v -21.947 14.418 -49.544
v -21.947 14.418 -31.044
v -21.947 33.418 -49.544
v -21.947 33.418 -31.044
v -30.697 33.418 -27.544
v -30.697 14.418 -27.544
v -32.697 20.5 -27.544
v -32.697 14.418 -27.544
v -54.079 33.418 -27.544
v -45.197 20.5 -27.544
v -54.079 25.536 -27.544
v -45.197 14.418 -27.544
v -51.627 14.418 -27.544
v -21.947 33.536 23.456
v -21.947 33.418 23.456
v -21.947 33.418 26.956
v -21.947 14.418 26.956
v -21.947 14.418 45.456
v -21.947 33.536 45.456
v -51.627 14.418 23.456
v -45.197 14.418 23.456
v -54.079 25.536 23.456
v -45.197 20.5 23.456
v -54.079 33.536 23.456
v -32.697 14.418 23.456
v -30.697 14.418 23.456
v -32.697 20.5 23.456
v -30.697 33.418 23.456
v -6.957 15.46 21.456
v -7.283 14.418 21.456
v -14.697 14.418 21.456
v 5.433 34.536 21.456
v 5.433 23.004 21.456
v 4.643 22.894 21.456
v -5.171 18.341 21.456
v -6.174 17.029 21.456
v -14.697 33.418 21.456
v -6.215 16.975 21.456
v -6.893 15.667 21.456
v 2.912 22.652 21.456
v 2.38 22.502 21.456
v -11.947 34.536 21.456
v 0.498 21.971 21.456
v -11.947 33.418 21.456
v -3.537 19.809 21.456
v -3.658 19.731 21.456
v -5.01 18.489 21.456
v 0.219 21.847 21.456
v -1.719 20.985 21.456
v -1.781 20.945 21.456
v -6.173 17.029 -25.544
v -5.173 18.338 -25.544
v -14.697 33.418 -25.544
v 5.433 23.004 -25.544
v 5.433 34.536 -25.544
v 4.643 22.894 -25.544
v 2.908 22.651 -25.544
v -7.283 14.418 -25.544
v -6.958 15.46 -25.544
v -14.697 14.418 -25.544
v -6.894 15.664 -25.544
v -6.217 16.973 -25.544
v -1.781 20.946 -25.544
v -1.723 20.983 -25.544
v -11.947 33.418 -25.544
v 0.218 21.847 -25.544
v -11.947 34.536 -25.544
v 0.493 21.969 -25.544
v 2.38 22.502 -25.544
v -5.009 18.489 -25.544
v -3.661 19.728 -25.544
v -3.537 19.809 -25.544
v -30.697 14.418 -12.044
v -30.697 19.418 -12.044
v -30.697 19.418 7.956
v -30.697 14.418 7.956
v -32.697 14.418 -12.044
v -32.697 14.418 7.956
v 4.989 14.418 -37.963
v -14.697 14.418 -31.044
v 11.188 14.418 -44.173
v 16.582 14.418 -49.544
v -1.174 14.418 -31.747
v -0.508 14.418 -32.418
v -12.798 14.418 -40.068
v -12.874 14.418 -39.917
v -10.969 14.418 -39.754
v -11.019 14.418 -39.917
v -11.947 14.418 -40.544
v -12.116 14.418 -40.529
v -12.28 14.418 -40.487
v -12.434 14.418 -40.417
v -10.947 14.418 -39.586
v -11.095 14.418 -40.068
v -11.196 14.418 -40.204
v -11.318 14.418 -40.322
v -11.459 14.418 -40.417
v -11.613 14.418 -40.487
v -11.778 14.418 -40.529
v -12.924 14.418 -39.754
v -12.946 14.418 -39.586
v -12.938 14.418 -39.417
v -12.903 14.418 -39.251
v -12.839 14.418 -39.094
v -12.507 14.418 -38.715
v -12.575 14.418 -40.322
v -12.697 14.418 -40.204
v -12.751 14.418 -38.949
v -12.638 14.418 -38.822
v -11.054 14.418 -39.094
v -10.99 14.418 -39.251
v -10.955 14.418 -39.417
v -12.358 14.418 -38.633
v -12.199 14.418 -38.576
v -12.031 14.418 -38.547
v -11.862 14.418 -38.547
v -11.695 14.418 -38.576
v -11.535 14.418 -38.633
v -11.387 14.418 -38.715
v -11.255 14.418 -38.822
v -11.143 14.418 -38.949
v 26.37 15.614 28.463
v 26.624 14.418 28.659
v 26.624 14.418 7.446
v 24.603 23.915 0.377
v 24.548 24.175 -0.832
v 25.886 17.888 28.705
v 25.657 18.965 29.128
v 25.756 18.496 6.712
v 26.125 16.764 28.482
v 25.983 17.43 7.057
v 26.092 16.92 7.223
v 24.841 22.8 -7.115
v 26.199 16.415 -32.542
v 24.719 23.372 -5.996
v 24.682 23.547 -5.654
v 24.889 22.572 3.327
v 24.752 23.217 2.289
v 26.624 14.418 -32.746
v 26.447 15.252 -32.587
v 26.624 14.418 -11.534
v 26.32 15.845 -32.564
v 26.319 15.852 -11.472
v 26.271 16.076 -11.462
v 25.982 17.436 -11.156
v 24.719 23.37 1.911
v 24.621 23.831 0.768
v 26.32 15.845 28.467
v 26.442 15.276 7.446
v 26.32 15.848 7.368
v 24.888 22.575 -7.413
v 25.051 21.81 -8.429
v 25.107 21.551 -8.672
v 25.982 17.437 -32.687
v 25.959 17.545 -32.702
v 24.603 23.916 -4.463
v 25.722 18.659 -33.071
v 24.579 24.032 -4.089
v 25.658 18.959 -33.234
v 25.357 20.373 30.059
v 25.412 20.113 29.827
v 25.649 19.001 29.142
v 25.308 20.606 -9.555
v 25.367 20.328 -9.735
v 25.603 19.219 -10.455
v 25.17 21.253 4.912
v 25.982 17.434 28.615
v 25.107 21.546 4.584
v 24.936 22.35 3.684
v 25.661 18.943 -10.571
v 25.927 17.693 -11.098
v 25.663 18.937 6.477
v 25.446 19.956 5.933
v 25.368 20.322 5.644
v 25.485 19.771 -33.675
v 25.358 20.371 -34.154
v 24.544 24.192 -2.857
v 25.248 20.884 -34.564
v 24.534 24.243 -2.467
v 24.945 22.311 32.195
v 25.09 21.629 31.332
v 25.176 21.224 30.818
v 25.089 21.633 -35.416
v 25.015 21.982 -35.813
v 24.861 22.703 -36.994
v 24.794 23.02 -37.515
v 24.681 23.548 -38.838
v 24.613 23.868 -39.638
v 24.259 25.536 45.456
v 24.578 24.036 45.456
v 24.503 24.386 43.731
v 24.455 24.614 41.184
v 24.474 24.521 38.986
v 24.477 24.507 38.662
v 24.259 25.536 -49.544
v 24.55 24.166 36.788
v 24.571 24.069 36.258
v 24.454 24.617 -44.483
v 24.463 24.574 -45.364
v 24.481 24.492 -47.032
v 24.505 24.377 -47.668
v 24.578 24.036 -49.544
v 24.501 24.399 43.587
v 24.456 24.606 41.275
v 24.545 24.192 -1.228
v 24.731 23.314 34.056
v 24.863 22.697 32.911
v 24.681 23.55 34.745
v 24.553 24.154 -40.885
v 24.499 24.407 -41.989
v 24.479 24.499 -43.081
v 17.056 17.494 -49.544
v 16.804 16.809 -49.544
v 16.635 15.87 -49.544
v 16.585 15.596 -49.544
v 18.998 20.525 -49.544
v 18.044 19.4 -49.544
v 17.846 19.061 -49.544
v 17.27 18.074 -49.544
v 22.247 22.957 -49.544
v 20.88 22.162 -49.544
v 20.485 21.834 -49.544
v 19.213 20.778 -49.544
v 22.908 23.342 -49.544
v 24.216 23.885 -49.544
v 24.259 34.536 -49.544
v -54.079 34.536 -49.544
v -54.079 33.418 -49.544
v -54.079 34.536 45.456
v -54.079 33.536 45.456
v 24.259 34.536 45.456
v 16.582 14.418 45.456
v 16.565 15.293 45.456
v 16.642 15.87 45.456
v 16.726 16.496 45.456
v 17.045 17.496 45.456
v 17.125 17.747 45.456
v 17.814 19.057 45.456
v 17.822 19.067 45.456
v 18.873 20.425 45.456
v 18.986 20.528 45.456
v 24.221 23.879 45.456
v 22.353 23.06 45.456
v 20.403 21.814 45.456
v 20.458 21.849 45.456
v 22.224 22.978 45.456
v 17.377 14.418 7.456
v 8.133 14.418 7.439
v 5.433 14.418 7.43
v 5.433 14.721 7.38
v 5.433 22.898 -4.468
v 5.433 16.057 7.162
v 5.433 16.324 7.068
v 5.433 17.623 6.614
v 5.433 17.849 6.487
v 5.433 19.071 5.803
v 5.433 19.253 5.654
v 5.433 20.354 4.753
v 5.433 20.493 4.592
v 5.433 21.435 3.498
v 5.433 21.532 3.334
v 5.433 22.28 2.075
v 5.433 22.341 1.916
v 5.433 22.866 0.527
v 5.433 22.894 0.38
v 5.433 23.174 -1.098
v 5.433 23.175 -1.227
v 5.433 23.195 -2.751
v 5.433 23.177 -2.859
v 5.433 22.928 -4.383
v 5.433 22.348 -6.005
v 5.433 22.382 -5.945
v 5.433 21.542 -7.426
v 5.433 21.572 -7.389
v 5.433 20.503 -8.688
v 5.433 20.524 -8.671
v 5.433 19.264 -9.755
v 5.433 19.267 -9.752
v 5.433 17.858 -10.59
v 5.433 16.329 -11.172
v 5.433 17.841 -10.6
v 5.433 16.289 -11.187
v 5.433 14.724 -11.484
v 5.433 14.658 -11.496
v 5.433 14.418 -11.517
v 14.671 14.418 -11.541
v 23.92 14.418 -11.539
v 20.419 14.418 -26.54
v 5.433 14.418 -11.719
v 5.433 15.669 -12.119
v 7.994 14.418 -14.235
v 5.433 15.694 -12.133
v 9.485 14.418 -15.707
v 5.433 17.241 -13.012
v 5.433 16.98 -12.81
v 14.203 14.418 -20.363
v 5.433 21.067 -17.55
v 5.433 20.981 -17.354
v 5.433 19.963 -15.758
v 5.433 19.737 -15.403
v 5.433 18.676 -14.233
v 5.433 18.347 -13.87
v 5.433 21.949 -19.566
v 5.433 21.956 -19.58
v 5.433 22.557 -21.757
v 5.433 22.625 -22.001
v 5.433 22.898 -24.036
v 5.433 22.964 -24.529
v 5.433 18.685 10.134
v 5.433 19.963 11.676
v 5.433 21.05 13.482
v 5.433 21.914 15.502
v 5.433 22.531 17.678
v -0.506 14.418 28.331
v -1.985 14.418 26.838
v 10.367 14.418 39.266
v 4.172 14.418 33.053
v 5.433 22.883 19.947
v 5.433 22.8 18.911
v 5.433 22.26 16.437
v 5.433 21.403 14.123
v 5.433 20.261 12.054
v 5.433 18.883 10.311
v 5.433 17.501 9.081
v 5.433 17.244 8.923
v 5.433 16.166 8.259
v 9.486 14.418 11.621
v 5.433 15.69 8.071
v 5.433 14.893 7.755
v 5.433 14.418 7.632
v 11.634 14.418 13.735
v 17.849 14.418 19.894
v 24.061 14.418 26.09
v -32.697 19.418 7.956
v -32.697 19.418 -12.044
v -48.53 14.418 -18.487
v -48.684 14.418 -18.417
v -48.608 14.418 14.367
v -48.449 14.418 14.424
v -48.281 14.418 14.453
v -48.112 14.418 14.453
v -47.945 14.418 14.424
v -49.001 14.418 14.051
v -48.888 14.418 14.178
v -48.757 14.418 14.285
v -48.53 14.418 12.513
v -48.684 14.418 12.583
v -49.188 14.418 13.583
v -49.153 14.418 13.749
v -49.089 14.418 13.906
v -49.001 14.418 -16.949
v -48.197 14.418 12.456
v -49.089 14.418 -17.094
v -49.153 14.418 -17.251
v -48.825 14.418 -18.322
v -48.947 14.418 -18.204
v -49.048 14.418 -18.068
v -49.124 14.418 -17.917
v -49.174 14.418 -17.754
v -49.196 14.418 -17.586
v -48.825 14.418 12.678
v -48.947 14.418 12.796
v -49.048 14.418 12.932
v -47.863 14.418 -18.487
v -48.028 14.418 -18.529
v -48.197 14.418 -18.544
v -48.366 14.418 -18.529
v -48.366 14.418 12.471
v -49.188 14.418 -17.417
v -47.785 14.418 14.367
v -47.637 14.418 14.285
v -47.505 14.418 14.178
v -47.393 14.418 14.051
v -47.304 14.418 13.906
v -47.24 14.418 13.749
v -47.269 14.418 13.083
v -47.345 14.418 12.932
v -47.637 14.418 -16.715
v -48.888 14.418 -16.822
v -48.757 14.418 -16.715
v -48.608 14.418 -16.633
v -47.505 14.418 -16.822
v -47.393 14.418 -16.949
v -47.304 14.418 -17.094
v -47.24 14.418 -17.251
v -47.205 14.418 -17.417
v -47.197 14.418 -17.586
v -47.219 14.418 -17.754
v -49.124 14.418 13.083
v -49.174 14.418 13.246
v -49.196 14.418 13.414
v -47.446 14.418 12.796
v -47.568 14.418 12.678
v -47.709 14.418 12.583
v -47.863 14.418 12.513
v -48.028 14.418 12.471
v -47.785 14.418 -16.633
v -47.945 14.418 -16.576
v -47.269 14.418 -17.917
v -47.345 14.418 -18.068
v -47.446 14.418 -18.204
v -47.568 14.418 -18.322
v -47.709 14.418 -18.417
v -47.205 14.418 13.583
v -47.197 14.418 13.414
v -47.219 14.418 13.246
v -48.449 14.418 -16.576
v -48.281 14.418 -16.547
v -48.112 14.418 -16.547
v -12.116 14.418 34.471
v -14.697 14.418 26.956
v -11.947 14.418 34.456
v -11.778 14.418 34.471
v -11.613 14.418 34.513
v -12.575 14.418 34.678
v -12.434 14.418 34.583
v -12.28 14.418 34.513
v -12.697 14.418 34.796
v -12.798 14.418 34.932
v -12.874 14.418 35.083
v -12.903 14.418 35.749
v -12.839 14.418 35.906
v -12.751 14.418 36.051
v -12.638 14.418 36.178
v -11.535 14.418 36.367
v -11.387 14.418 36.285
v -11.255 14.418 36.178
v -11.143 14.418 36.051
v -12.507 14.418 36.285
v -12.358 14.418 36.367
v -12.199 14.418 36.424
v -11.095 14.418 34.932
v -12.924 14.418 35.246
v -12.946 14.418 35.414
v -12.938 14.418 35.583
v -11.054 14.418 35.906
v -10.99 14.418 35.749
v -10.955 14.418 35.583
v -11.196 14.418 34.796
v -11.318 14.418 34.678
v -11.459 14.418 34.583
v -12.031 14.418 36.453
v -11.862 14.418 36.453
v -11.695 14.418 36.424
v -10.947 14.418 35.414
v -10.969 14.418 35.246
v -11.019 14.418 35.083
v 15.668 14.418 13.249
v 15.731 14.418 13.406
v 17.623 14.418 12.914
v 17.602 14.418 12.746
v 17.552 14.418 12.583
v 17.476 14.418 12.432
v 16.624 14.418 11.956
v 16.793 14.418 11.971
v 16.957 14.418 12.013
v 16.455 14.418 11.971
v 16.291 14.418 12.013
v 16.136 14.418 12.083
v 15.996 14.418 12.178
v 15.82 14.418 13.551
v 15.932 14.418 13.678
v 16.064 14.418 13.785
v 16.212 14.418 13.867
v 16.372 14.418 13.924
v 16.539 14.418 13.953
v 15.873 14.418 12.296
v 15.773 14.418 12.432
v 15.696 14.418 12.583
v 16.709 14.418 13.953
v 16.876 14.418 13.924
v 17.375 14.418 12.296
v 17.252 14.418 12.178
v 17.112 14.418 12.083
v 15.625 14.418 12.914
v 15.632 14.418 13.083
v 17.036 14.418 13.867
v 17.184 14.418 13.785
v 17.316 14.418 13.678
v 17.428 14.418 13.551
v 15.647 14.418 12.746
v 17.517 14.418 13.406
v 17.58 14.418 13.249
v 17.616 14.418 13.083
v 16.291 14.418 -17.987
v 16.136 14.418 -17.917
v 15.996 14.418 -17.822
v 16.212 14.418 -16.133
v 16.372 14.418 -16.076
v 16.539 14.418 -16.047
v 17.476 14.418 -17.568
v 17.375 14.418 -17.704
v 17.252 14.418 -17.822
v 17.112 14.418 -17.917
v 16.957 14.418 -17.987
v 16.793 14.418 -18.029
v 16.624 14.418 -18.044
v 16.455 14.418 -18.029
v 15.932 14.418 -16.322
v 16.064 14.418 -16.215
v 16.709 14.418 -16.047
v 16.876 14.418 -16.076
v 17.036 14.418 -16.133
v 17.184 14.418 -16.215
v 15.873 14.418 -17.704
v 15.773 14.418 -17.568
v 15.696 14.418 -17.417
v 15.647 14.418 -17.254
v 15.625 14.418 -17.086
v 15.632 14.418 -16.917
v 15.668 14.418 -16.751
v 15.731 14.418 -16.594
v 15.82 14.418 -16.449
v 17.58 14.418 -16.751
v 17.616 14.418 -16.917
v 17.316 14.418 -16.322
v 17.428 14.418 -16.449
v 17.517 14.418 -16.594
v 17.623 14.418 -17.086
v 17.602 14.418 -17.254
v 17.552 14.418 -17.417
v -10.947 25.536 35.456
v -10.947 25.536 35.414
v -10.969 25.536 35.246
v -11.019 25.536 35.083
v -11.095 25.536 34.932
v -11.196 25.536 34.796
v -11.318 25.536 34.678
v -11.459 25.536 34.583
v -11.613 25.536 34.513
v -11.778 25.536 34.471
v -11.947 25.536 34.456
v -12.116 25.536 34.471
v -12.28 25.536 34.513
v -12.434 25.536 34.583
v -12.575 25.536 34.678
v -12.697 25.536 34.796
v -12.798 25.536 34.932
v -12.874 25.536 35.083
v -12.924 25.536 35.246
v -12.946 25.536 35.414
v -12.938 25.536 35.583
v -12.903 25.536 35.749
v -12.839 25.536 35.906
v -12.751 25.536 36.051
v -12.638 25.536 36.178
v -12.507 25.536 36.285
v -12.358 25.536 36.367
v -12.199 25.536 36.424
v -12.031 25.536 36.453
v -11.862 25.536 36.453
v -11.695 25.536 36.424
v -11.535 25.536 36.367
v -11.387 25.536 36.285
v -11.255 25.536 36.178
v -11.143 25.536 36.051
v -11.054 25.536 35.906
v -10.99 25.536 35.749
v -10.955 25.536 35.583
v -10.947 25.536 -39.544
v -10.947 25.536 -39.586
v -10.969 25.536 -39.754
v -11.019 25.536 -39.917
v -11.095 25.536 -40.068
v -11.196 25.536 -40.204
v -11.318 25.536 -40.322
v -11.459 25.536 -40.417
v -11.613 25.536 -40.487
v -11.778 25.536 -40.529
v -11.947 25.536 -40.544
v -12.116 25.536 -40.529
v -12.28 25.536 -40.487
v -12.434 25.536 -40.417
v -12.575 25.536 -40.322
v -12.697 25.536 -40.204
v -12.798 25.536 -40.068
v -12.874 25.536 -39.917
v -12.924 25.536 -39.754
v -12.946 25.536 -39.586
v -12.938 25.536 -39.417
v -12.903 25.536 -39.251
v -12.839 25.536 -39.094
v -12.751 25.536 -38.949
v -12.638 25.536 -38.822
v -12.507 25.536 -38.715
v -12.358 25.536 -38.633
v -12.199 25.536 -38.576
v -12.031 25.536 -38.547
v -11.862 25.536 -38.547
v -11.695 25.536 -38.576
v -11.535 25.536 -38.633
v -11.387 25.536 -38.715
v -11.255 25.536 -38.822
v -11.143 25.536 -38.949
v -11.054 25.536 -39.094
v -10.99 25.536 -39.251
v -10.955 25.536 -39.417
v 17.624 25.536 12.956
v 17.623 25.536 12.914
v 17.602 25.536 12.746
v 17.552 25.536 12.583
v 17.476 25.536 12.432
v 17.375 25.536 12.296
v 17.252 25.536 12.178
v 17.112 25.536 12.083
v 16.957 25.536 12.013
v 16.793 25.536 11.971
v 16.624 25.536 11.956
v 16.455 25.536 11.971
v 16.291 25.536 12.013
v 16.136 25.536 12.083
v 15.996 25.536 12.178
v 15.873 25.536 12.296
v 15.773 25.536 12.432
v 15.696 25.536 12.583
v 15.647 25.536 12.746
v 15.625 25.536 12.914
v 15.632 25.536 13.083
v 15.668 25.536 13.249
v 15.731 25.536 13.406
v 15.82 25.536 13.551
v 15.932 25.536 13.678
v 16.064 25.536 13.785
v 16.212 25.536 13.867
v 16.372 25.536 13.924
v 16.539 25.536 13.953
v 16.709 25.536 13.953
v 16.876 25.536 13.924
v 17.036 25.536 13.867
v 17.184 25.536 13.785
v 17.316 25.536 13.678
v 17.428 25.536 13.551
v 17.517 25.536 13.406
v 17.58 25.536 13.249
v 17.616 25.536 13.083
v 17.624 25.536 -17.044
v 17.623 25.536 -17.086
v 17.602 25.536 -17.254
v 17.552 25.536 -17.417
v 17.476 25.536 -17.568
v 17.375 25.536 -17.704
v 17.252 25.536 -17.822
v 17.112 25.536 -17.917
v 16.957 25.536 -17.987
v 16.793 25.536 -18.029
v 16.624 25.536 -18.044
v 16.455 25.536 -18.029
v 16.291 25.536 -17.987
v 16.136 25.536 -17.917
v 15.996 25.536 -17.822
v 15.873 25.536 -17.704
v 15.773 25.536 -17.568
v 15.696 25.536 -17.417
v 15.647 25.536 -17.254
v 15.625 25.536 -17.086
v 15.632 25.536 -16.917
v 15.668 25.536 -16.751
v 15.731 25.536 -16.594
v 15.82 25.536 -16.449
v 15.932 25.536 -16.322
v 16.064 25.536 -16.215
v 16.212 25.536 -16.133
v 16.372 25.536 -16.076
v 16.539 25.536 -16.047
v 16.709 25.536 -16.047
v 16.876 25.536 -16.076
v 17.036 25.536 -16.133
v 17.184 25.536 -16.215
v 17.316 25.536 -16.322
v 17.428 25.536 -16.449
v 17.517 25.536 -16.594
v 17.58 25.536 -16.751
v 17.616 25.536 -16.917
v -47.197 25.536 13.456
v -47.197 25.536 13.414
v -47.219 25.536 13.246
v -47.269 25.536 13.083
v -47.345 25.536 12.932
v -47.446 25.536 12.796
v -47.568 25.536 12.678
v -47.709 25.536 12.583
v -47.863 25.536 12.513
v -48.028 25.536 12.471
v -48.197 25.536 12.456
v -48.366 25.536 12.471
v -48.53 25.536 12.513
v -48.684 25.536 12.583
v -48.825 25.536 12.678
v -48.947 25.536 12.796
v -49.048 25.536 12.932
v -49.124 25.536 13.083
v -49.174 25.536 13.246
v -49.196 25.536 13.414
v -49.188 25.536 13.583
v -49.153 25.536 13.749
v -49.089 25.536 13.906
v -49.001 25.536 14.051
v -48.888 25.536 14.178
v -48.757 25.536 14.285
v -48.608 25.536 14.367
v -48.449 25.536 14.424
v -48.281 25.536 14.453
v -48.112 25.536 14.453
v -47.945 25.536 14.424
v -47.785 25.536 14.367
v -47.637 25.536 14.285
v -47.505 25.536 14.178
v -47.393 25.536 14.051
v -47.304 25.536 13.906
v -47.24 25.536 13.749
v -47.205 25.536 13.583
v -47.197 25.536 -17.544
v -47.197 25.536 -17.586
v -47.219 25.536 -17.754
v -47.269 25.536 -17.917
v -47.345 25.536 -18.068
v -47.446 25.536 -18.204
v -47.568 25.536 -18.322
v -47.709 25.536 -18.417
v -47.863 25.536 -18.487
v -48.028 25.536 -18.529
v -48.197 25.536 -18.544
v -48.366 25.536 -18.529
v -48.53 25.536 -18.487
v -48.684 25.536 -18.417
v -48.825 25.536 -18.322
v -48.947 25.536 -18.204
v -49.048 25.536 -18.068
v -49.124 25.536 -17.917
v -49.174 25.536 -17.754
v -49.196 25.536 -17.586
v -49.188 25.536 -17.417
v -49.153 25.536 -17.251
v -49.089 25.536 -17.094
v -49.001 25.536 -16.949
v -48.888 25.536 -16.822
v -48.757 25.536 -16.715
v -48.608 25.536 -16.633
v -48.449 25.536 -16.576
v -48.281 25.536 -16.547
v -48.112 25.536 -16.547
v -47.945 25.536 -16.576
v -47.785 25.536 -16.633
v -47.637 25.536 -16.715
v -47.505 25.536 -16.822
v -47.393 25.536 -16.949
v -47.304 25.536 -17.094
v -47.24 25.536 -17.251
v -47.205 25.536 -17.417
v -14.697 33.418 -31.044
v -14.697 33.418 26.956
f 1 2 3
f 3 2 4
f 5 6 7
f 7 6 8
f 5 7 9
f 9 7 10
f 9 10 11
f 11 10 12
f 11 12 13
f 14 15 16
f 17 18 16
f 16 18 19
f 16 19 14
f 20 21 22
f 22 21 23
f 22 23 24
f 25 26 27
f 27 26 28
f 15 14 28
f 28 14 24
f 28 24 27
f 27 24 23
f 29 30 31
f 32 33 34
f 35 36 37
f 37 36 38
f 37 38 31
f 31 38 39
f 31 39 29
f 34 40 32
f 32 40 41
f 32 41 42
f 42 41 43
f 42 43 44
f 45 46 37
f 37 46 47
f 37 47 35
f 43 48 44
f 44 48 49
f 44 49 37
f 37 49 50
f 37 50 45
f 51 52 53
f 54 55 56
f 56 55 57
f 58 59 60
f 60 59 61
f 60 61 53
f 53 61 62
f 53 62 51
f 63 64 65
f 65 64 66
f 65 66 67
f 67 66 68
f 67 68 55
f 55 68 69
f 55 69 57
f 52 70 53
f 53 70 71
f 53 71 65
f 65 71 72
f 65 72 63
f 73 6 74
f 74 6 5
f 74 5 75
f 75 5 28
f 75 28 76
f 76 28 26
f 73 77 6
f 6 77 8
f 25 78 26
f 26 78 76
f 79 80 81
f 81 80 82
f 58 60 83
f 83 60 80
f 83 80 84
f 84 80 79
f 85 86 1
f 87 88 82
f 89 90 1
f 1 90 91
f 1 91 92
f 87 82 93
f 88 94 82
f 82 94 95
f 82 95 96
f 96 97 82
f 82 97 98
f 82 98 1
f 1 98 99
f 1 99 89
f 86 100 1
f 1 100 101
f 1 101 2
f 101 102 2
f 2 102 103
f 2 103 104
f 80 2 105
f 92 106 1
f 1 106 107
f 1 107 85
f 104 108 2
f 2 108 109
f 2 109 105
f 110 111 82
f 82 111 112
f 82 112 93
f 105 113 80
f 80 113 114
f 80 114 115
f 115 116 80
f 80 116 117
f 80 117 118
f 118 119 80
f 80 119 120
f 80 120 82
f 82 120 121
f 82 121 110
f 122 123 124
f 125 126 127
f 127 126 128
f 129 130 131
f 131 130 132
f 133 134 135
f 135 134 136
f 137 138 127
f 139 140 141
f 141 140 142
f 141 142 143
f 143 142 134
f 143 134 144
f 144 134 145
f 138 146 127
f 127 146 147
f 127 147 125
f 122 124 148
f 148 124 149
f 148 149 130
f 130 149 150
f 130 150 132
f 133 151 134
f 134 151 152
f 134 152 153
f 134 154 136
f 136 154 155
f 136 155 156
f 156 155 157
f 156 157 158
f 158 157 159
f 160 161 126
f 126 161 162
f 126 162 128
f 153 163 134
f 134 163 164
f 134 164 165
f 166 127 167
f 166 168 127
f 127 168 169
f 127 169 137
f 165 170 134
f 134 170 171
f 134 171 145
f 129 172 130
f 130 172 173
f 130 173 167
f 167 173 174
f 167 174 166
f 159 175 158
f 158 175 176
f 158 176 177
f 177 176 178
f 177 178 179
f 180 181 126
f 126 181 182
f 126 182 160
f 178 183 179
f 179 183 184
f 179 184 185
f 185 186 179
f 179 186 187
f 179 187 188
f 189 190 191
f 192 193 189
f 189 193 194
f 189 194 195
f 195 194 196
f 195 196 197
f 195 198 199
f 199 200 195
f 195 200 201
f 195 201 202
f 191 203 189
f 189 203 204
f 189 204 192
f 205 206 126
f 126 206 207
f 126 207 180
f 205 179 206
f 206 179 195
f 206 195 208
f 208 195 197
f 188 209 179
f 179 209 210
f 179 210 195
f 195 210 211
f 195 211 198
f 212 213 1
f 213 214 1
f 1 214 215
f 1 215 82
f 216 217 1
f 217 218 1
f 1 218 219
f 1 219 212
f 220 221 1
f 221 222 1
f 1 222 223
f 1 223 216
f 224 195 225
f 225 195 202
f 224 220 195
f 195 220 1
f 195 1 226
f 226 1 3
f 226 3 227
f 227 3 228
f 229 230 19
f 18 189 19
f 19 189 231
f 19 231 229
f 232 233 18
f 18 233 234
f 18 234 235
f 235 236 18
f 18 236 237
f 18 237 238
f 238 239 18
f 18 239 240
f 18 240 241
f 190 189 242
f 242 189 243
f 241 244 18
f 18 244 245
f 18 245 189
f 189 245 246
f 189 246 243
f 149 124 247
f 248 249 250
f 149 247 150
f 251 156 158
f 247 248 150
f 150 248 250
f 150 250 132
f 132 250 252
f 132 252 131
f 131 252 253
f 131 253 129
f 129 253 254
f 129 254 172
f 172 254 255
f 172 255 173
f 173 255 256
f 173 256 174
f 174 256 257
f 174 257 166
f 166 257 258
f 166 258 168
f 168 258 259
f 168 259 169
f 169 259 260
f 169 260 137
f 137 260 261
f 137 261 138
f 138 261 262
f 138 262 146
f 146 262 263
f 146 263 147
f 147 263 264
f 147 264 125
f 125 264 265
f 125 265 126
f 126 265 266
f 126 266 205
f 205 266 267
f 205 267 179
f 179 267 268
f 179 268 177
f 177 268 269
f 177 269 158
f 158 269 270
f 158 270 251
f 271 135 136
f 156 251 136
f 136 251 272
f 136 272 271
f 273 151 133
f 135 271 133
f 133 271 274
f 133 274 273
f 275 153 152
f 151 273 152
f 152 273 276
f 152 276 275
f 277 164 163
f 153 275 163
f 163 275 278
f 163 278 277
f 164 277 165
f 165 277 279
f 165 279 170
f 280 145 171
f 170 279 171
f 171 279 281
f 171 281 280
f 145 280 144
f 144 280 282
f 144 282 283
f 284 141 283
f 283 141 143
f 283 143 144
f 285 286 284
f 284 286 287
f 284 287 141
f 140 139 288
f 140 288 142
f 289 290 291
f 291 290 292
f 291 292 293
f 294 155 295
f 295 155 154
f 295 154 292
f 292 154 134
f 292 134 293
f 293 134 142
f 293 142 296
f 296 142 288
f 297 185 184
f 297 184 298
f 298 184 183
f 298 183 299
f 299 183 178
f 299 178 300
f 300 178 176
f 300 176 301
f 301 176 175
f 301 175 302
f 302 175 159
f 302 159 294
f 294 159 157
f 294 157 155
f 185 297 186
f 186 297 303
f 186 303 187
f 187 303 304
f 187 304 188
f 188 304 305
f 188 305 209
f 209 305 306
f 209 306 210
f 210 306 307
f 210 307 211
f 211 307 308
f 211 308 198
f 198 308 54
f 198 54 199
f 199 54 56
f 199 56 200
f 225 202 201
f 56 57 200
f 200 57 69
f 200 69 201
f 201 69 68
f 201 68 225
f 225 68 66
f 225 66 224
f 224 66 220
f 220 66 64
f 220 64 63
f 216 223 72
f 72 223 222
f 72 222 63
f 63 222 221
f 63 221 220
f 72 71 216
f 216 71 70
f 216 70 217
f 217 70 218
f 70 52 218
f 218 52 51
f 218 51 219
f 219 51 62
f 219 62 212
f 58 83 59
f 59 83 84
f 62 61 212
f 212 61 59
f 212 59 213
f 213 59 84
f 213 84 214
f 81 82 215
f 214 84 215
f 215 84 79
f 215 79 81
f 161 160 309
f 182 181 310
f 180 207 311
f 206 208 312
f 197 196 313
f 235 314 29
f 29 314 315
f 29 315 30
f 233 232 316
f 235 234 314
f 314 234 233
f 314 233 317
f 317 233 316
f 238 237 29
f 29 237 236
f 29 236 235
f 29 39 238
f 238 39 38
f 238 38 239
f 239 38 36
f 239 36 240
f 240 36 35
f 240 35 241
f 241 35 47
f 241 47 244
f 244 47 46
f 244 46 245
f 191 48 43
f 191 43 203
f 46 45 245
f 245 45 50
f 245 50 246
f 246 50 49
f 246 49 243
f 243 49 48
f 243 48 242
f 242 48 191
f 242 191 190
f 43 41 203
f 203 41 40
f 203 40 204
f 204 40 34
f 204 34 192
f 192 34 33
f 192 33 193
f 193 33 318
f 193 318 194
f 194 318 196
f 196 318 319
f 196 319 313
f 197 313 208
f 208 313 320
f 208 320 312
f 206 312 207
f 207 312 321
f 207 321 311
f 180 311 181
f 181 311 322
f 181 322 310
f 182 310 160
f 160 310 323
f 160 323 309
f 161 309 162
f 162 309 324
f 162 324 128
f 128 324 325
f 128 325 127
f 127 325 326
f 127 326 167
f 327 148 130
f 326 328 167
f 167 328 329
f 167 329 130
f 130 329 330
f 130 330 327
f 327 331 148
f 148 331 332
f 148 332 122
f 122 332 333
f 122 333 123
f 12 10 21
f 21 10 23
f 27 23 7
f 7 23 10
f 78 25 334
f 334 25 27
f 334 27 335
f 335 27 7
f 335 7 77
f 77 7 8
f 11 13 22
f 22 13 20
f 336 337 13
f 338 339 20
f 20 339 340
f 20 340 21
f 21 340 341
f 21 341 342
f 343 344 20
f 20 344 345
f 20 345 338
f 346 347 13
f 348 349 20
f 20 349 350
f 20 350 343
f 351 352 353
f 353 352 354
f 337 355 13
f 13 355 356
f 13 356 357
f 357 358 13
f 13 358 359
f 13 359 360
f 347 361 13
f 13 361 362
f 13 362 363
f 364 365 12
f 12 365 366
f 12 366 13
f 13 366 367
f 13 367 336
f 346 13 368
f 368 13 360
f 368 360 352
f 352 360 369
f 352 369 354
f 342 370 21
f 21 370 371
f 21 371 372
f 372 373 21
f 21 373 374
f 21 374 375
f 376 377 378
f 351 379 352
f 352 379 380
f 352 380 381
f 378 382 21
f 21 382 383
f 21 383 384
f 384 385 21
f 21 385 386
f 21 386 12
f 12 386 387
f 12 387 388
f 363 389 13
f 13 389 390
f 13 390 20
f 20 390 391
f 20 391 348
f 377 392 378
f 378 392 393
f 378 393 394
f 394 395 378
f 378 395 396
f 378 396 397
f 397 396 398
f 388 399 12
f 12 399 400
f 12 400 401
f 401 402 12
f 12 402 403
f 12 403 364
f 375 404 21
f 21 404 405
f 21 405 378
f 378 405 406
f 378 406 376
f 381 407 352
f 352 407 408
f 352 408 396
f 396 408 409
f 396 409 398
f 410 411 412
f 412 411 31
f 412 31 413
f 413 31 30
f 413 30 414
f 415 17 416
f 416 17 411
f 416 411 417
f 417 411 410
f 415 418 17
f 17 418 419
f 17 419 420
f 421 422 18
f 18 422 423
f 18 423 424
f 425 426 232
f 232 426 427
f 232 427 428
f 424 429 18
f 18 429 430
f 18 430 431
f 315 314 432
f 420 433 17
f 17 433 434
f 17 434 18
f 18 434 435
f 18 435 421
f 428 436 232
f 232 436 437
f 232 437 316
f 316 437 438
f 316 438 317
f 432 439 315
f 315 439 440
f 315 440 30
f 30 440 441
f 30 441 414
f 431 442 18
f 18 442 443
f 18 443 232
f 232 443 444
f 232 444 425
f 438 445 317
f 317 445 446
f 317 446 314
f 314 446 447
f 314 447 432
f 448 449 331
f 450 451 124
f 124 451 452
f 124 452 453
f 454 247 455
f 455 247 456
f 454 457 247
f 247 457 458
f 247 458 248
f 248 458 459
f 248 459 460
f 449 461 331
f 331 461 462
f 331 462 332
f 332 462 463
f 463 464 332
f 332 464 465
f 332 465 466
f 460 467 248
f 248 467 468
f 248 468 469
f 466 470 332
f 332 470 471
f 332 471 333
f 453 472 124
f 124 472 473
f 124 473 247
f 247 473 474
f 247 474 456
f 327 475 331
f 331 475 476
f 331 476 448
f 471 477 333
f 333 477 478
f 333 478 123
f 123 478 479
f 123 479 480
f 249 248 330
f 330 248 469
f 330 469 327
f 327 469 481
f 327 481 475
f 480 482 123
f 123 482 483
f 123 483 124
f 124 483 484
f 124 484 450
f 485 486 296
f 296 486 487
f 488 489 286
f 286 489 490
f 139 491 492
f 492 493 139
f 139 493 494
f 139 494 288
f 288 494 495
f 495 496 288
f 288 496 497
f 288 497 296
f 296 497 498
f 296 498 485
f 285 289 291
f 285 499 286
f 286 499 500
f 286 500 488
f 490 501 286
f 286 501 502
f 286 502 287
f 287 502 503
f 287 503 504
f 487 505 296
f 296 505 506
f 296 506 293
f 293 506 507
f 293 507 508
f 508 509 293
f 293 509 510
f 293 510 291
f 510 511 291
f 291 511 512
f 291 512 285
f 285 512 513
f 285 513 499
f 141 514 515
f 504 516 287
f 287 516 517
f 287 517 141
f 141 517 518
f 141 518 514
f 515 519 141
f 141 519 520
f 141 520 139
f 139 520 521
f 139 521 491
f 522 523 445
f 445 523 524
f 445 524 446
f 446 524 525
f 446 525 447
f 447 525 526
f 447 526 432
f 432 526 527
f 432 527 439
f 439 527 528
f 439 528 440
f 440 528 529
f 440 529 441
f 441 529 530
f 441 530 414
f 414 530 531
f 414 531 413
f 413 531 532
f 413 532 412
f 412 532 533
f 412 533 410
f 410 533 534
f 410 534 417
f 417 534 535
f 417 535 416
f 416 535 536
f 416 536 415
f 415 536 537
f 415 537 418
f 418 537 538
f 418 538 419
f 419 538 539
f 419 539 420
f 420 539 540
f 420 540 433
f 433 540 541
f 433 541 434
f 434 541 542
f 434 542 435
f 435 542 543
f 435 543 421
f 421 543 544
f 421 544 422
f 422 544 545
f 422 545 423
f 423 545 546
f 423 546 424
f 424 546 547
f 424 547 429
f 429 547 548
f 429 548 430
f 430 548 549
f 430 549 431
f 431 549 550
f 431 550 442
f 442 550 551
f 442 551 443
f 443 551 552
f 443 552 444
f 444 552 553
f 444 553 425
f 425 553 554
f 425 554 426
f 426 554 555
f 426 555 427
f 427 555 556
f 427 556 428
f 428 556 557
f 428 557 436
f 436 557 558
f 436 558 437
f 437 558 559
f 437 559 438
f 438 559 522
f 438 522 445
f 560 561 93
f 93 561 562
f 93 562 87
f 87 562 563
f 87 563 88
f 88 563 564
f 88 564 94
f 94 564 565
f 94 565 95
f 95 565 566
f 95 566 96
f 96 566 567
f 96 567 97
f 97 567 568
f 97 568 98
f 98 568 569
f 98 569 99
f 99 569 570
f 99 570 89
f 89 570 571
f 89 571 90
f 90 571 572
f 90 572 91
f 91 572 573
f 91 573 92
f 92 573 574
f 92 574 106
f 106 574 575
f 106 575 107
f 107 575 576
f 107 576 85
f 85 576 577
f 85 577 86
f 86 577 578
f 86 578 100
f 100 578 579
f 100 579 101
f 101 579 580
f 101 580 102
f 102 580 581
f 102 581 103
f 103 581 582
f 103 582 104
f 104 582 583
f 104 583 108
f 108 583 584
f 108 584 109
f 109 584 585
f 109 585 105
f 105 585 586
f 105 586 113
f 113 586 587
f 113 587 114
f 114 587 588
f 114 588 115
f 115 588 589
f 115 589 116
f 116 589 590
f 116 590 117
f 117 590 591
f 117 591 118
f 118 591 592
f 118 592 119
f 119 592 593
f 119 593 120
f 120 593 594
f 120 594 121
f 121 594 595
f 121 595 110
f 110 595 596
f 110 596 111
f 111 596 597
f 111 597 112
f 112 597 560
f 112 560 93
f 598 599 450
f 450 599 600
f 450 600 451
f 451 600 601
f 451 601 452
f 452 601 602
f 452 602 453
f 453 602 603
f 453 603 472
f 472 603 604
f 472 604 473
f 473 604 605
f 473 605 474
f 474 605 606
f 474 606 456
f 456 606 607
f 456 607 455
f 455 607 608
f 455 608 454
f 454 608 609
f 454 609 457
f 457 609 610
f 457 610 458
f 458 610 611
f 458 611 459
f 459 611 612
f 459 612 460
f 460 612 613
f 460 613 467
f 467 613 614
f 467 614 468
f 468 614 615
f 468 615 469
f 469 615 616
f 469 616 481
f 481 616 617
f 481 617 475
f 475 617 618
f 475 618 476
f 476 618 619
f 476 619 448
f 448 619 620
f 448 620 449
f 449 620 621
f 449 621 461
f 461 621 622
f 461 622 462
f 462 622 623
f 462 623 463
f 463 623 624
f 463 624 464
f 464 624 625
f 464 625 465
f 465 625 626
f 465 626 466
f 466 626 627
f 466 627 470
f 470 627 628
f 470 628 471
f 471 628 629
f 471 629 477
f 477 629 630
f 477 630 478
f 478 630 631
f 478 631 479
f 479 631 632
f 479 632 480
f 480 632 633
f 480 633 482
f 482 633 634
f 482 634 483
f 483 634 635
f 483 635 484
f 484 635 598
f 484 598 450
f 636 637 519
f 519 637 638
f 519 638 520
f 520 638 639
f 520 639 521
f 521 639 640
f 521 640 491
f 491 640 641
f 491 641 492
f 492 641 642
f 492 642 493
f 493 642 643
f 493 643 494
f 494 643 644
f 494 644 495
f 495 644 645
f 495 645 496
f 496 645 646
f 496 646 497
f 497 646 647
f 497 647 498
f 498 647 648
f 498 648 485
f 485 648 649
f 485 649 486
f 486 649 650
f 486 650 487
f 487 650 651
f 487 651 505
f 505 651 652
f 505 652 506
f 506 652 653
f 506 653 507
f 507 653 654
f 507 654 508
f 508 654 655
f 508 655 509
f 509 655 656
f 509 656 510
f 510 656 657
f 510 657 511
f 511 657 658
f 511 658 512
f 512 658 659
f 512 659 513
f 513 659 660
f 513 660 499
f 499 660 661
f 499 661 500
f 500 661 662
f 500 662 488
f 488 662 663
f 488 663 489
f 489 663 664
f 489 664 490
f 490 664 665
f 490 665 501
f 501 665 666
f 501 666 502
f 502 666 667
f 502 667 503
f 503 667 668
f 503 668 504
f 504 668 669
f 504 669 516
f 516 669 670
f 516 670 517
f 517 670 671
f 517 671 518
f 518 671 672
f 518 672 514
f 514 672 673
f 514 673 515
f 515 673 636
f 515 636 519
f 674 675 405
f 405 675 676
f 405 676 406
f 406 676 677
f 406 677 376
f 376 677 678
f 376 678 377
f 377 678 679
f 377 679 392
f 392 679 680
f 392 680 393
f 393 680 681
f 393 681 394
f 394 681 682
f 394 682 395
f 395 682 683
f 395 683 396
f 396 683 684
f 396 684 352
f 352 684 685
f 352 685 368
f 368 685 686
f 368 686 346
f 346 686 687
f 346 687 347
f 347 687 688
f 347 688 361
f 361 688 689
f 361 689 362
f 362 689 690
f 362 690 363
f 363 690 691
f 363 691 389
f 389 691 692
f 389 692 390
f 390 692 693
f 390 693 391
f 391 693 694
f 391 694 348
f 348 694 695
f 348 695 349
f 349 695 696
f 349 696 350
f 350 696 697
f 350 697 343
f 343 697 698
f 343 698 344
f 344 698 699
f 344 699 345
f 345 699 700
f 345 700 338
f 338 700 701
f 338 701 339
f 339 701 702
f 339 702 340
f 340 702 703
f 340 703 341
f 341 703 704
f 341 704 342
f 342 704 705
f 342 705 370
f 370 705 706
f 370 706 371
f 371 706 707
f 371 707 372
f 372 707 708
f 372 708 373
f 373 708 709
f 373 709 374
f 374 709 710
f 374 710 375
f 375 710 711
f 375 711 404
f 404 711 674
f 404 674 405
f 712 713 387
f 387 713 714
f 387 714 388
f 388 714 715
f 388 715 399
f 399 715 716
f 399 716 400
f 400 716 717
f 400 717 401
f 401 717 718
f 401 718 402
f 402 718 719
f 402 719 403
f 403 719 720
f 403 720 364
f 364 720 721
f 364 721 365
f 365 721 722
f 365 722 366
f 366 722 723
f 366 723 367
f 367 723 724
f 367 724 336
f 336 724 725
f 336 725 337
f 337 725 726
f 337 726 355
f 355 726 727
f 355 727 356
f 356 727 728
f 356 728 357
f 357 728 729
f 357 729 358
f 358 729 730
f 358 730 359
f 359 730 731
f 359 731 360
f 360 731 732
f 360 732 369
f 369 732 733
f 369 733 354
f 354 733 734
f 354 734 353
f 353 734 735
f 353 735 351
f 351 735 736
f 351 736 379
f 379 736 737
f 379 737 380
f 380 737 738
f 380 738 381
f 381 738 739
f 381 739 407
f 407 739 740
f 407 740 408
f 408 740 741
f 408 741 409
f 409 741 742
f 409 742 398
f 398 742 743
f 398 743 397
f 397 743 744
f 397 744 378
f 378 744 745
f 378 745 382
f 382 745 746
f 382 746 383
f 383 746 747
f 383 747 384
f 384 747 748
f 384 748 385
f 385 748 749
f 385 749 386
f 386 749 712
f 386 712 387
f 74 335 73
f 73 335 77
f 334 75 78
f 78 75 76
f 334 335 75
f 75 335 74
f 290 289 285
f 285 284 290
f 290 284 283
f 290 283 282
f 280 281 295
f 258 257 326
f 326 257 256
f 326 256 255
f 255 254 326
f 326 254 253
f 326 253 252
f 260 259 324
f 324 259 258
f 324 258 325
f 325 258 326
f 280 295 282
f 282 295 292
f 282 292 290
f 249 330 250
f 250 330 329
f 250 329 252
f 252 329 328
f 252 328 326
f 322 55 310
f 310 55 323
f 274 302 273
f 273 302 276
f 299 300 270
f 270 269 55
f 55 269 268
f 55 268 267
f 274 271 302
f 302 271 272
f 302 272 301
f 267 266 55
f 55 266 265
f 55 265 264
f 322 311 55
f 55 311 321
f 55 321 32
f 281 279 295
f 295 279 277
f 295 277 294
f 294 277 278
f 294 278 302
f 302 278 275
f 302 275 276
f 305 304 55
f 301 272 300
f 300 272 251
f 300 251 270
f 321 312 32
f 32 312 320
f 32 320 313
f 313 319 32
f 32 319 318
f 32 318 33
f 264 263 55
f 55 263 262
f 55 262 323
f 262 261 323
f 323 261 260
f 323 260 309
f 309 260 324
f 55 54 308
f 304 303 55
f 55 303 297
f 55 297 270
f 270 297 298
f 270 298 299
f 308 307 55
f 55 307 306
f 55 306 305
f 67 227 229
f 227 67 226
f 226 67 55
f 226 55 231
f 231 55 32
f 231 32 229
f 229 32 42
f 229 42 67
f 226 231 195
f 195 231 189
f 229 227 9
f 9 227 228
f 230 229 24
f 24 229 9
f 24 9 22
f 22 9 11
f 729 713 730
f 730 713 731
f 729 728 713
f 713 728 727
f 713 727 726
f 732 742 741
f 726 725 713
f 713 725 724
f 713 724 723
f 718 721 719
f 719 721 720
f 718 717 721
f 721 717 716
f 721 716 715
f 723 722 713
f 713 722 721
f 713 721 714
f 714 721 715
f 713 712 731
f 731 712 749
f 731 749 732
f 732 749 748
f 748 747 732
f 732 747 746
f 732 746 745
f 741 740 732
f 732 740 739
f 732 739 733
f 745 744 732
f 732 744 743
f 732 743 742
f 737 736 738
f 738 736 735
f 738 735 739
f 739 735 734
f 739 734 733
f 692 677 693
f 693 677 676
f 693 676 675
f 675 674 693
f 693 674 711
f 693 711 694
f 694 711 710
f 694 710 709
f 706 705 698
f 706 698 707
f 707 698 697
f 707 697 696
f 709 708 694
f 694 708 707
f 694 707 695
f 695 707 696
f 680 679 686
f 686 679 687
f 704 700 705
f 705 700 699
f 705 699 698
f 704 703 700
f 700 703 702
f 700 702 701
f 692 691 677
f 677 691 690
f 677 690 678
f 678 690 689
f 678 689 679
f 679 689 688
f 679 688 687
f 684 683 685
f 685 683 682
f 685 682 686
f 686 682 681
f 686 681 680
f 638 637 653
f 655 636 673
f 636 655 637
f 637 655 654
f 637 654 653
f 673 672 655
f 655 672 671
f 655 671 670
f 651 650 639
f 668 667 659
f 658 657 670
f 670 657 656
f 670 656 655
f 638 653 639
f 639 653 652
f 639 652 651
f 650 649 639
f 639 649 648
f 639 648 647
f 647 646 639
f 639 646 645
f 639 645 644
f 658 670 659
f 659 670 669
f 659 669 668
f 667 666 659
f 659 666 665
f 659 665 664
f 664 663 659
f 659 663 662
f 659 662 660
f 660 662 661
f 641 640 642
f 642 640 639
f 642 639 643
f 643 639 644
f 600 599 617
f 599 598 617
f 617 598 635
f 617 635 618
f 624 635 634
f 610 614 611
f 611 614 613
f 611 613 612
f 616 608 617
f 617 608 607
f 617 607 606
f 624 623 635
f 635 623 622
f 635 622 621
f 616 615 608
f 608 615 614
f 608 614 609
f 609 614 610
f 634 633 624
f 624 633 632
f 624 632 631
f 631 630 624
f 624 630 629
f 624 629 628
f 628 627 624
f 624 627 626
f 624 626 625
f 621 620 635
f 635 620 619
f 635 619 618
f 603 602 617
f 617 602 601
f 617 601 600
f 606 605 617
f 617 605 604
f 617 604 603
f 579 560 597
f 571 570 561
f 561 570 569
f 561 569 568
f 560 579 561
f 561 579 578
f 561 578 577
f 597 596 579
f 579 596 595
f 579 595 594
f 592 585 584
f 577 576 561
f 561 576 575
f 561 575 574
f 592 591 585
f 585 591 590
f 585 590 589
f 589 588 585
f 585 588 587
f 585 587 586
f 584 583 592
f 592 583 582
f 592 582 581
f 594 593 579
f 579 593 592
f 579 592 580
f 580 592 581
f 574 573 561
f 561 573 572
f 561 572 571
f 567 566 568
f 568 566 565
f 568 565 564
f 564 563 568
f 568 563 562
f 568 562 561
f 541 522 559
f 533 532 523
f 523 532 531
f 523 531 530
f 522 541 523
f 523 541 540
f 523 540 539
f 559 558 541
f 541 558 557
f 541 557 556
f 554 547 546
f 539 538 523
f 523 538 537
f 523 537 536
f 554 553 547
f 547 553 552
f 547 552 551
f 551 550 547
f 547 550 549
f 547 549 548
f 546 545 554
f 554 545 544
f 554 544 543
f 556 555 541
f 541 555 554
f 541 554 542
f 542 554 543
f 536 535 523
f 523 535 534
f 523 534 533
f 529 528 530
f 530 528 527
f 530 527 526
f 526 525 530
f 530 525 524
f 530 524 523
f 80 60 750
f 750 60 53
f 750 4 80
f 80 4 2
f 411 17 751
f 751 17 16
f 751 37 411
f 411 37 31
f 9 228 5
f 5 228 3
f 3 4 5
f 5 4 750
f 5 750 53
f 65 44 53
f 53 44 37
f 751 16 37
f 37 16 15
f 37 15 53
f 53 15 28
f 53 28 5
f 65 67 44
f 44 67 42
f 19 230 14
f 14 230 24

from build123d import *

# Parameters (mm, degrees)
SKETCH1_W           = 95
SKETCH1_H           = 95
BOSS_EXTRUDE1_DEPTH = 50
CUT_EXTRUDE1_DEPTH  = 100
SKETCH3_R           = 9.5
CUT_EXTRUDE2_DEPTH  = 45
CUT_EXTRUDE4_DEPTH  = 45
CUT_EXTRUDE5_DEPTH  = 45
CUT_EXTRUDE6_DEPTH  = 45
CUT_EXTRUDE7_DEPTH  = 45
SKETCH9_R           = 9.5
CUT_EXTRUDE9_DEPTH  = 45
SKETCH11_R          = 9.5
CUT_EXTRUDE10_DEPTH = 45
SKETCH12_W          = 31.985759797
SKETCH12_H          = 95
BOSS_EXTRUDE2_DEPTH = 45
CUT_EXTRUDE11_DEPTH = 100
SKETCH14_R          = 9.5
CUT_EXTRUDE12_DEPTH = 100
SKETCH15_R          = 9.5
CUT_EXTRUDE13_DEPTH = 100
SKETCH16_R          = 9.5
CUT_EXTRUDE14_DEPTH = 100
FILLET2_R           = 4
SKETCH17_W          = 34
SKETCH17_H          = 34
CUT_EXTRUDE16_DEPTH = 22
SKETCH19_W          = 34
SKETCH19_H          = 34
CUT_EXTRUDE17_DEPTH = 22
SKETCH20_W          = 12.5
SKETCH20_H          = 16.5
CUT_EXTRUDE18_DEPTH = 60
CUT_EXTRUDE19_DEPTH = 60
SKETCH22_W          = 99.816433395
SKETCH22_H          = 26.367590903
CUT_EXTRUDE21_DEPTH = 100
SKETCH23_R          = 1
CUT_EXTRUDE24_DEPTH = 909
SKETCH25_R          = 1
CUT_EXTRUDE25_DEPTH = 789
SKETCH27_W          = 26.129652456
SKETCH27_H          = 47
CUT_EXTRUDE27_DEPTH = 9
SKETCH28_W          = 2
SKETCH28_H          = 20
CUT_EXTRUDE28_DEPTH = 5
SKETCH29_W          = 99.017305209
SKETCH29_H          = 17.897343585
CUT_EXTRUDE29_DEPTH = 447
CUT_EXTRUDE30_DEPTH = 447
SKETCH31_W          = 26.129652456
SKETCH31_H          = 47
CUT_EXTRUDE31_DEPTH = 447
SKETCH32_W          = 12.716067022
SKETCH32_H          = 47
CUT_EXTRUDE32_DEPTH = 90
BOSS_EXTRUDE4_DEPTH = 9
SKETCH37_W          = 36.129652456
SKETCH37_H          = 47
CUT_EXTRUDE34_DEPTH = 9
SKETCH38_W          = 16
SKETCH38_H          = 58
CUT_EXTRUDE36_DEPTH = 19
SKETCH40_W          = 8.75
SKETCH40_H          = 1.118077743
BOSS_EXTRUDE5_DEPTH = 48
SKETCH41_W          = 47
SKETCH41_H          = 1.118077743
BOSS_EXTRUDE6_DEPTH = 10
SKETCH42_W          = 32.132900769
SKETCH42_H          = 1
BOSS_EXTRUDE7_DEPTH = 22
SKETCH43_W          = 32.132900769
SKETCH43_H          = 1.118077743
BOSS_EXTRUDE8_DEPTH = 22


with BuildPart() as part:
    # Sketch1 → Boss-Extrude1 (new body)
    with BuildSketch(Plane(origin=(0, 0, 0), x_dir=(1, 0, 0), z_dir=(0, 1, 0))):
        with Locations((-8.446550514, 2.043801884)):
            Rectangle(SKETCH1_W, SKETCH1_H)
    extrude(amount=BOSS_EXTRUDE1_DEPTH)

    # Sketch2 → Cut-Extrude1 (cut)
    with BuildSketch(Plane.XY.offset(45.456198116)):
        Polygon((39.053449486, 0), (36.353449486, 50), (39.053449486, 50), align=None)
    extrude(amount=-CUT_EXTRUDE1_DEPTH, mode=Mode.SUBTRACT)

    # Sketch3 → Cut-Extrude2 (cut)
    with BuildSketch(Plane(origin=(38.939900735, 2.10275464, 0), x_dir=(0, 0, -1), z_dir=(0.998545181, 0.05392144, 0))):
        with Locations((2.043801884, 13.394181776)):
            Circle(SKETCH3_R)
    extrude(amount=-CUT_EXTRUDE2_DEPTH, mode=Mode.SUBTRACT)

    # Sketch5 → Cut-Extrude4 (cut)
    with BuildSketch(Plane(origin=(0, 50, 0), x_dir=(1, 0, 0), z_dir=(0, 1, 0))):
        Polygon((39.053449486, 49.543801884), (39.053449486, 29.543801884), (19.053449486, 49.543801884), align=None)
        Polygon((39.053449486, -45.456198116), (39.053449486, -25.456198116), (19.053449486, -45.456198116), align=None)
    extrude(amount=-CUT_EXTRUDE4_DEPTH, mode=Mode.SUBTRACT)

    # Sketch6 → Cut-Extrude5 (cut)
    with BuildSketch(Plane(origin=(0, 50, 0), x_dir=(1, 0, 0), z_dir=(0, 1, 0))):
        Polygon((19.053449486, -45.456198116), (12.925569587, -39.328318218), (6.797689689, -45.456198116), align=None)
        Polygon((19.053449486, 49.543801884), (12.925569587, 43.415921985), (6.797689689, 49.543801884), align=None)
    extrude(amount=-CUT_EXTRUDE5_DEPTH, mode=Mode.SUBTRACT)

    # Sketch7 → Cut-Extrude6 (cut)
    with BuildSketch(Plane(origin=(-13.201374315, 0, 13.201374315), x_dir=(0.707106781, 0, 0.707106781), z_dir=(-0.707106781, 0, 0.707106781))):
        Polygon((45.615209271, 5), (42.915209271, 50), (45.615209271, 50), align=None)
    extrude(amount=-CUT_EXTRUDE6_DEPTH, mode=Mode.SUBTRACT)

    # Sketch8 → Cut-Extrude7 (cut)
    with BuildSketch(Plane(origin=(-15.245176199, 0, -15.245176199), x_dir=(-0.707106781, 0, 0.707106781), z_dir=(-0.707106781, 0, -0.707106781))):
        Polygon((-48.505581614, 5), (-45.805581614, 50), (-48.505581614, 50), align=None)
    extrude(amount=-CUT_EXTRUDE7_DEPTH, mode=Mode.SUBTRACT)

    # Sketch9 → Cut-Extrude9 (cut)
    with BuildSketch(Plane(origin=(34.386964646, 2.917830706, -34.386964646), x_dir=(-0.708373873, 0.059677836, -0.70331004), z_dir=(0.705837415, 0.059892291, -0.705837415))):
        with Locations((14.526974541, 11.311121921)):
            Circle(SKETCH9_R)
    extrude(amount=-CUT_EXTRUDE9_DEPTH, mode=Mode.SUBTRACT)

    # Sketch11 → Cut-Extrude10 (cut)
    with BuildSketch(Plane(origin=(32.350494057, 2.745030447, 32.350494057), x_dir=(0.70331004, 0.059677836, -0.708373873), z_dir=(0.705837415, 0.059892291, 0.705837415))):
        with Locations((-10.17752107, 12.964151979)):
            Circle(SKETCH11_R)
    extrude(amount=-CUT_EXTRUDE10_DEPTH, mode=Mode.SUBTRACT)

    # Sketch12 → Boss-Extrude2 (add)
    with BuildSketch(Plane(origin=(0, 5, 0), x_dir=(1, 0, 0), z_dir=(0, 1, 0))):
        with Locations((22.790569588, 2.043801884)):
            Rectangle(SKETCH12_W, SKETCH12_H)
    extrude(amount=BOSS_EXTRUDE2_DEPTH)

    # Sketch13 → Cut-Extrude11 (cut)
    with BuildSketch(Plane.XY.offset(45.456198116)):
        Polygon((39.053449486, 0), (29.053449486, 3), (19.053449486, 50), (49.745275601, 50), align=None)
    extrude(amount=-CUT_EXTRUDE11_DEPTH, mode=Mode.SUBTRACT)

    # Sketch14 → Cut-Extrude12 (cut)
    with BuildSketch(Plane(origin=(-5.994632406, -0.32371015, 0), x_dir=(0, 0, -1), z_dir=(0.998545181, 0.05392144, 0))):
        with Locations((2.043801884, 13.394181776)):
            Circle(SKETCH14_R)
    extrude(amount=CUT_EXTRUDE12_DEPTH, mode=Mode.SUBTRACT)

    # Sketch15 → Cut-Extrude13 (cut)
    with BuildSketch(Plane(origin=(0.587810371, 0.049877364, 0.587810371), x_dir=(0.70331004, 0.059677836, -0.708373873), z_dir=(0.705837415, 0.059892291, 0.705837415))):
        with Locations((-10.17752107, 12.964151979)):
            Circle(SKETCH15_R)
    extrude(amount=CUT_EXTRUDE13_DEPTH, mode=Mode.SUBTRACT)

    # Sketch16 → Cut-Extrude14 (cut)
    with BuildSketch(Plane(origin=(2.62428096, 0.222677624, -2.62428096), x_dir=(-0.708373873, 0.059677836, -0.70331004), z_dir=(0.705837415, 0.059892291, -0.705837415))):
        with Locations((14.526974541, 11.311121921)):
            Circle(SKETCH16_R)
    extrude(amount=CUT_EXTRUDE14_DEPTH, mode=Mode.SUBTRACT)

    # Fillet2
    fillet2_edges = [part.edges().sort_by_distance(p)[0] for p in [
        (29.053449486, 3, -2.043801884),
    ]]
    fillet(fillet2_edges, radius=FILLET2_R)

    # Sketch17 → Cut-Extrude16 (cut)
    with BuildSketch(Plane.XY.offset(45.456198116)):
        with Locations((-38.946550514, 17)):
            Rectangle(SKETCH17_W, SKETCH17_H)
    extrude(amount=-CUT_EXTRUDE16_DEPTH, mode=Mode.SUBTRACT)

    # Sketch19 → Cut-Extrude17 (cut)
    with BuildSketch(Plane(origin=(0, 0, -49.543801884), x_dir=(-1, 0, 0), z_dir=(0, 0, -1))):
        with Locations((38.946550514, 17)):
            Rectangle(SKETCH19_W, SKETCH19_H)
    extrude(amount=-CUT_EXTRUDE17_DEPTH, mode=Mode.SUBTRACT)

    # Sketch20 → Cut-Extrude18 (cut)
    with BuildSketch(Plane.XY.offset(23.456198116)):
        with Locations((-38.946550514, 12.25)):
            Rectangle(SKETCH20_W, SKETCH20_H)
    extrude(amount=-CUT_EXTRUDE18_DEPTH, mode=Mode.SUBTRACT)

    # Sketch21 → Cut-Extrude19 (cut)
    with BuildSketch(Plane.XY.offset(23.456198116)):
        Polygon((-55.946550514, 34), (-48.446550514, 0), (-55.946550514, 0), align=None)
    extrude(amount=-CUT_EXTRUDE19_DEPTH, mode=Mode.SUBTRACT)

    # Sketch22 → Cut-Extrude21 (cut)
    with BuildSketch(Plane.XY.offset(45.456198116)):
        with Locations((-7.85416812, 1.233943624)):
            Rectangle(SKETCH22_W, SKETCH22_H)
    extrude(amount=-CUT_EXTRUDE21_DEPTH, mode=Mode.SUBTRACT)

    # Sketch23 → Cut-Extrude24 (cut)
    with BuildSketch(Plane(origin=(0, 14.417739075, 0), x_dir=(-1, 0, 0), z_dir=(0, -1, 0))):
        with Locations((11.946550514, -35.456198116)):
            Circle(SKETCH23_R)
        with Locations((11.946550514, 39.543801884)):
            Circle(SKETCH23_R)
        with Locations((-16.624143299, -12.956198116)):
            Circle(SKETCH23_R)
        with Locations((-16.624143299, 17.043801884)):
            Circle(SKETCH23_R)
    extrude(amount=-CUT_EXTRUDE24_DEPTH, mode=Mode.SUBTRACT)

    # Sketch25 → Cut-Extrude25 (cut)
    with BuildSketch(Plane(origin=(0, 14.417739075, 0), x_dir=(-1, 0, 0), z_dir=(0, -1, 0))):
        with Locations((48.196550514, -13.456198116)):
            Circle(SKETCH25_R)
        with Locations((48.196550514, 17.543801884)):
            Circle(SKETCH25_R)
    extrude(amount=-CUT_EXTRUDE25_DEPTH, mode=Mode.SUBTRACT)

    # Sketch27 → Cut-Extrude27 (cut)
    with BuildSketch(Plane(origin=(0, 14.417739075, 0), x_dir=(-1, 0, 0), z_dir=(0, -1, 0))):
        with Locations((17.631724286, 2.043801884)):
            Rectangle(SKETCH27_W, SKETCH27_H)
    extrude(amount=-CUT_EXTRUDE27_DEPTH, mode=Mode.SUBTRACT)

    # Sketch28 → Cut-Extrude28 (cut)
    with BuildSketch(Plane(origin=(0, 14.417739075, 0), x_dir=(-1, 0, 0), z_dir=(0, -1, 0))):
        with Locations((31.696550514, 2.043801884)):
            Rectangle(SKETCH28_W, SKETCH28_H)
    extrude(amount=-CUT_EXTRUDE28_DEPTH, mode=Mode.SUBTRACT)

    # Sketch29 → Cut-Extrude29 (cut)
    with BuildSketch(Plane.XY.offset(45.456198116)):
        with Locations((-6.437897909, 42.948671793)):
            Rectangle(SKETCH29_W, SKETCH29_H)
    extrude(amount=-CUT_EXTRUDE29_DEPTH, mode=Mode.SUBTRACT)

    # Sketch30 → Cut-Extrude30 (cut)
    with BuildSketch(Plane.XY.offset(45.456198116)):
        Polygon((24.258594843, 25.535816818), (-54.079451283, 25.535816818), (-55.946550514, 34), (22.457704805, 34), align=None)
    extrude(amount=-CUT_EXTRUDE30_DEPTH, mode=Mode.SUBTRACT)

    # Sketch31 → Cut-Extrude31 (cut)
    with BuildSketch(Plane(origin=(0, 23.417739075, 0), x_dir=(-1, 0, 0), z_dir=(0, -1, 0))):
        with Locations((17.631724286, 2.043801884)):
            Rectangle(SKETCH31_W, SKETCH31_H)
    extrude(amount=-CUT_EXTRUDE31_DEPTH, mode=Mode.SUBTRACT)

    # Sketch32 → Cut-Extrude32 (cut)
    with BuildSketch(Plane(origin=(0, 14.417739075, 0), x_dir=(-1, 0, 0), z_dir=(0, -1, 0))):
        with Locations((0.924931569, 2.043801884)):
            Rectangle(SKETCH32_W, SKETCH32_H)
    extrude(amount=-CUT_EXTRUDE32_DEPTH, mode=Mode.SUBTRACT)

    # Sketch35 → Boss-Extrude4 (add)
    with BuildSketch(Plane(origin=(0, 25.535816818, 0), x_dir=(1, 0, 0), z_dir=(0, 1, 0))):
        Polygon((-54.079451283, 27.543801884), (-21.946550514, 27.543801884), (-21.946550514, 49.543801884), (24.258594843, 49.543801884), (24.258594843, -45.456198116), (-21.946550514, -45.456198116), (-21.946550514, -23.456198116), (-54.079451283, -23.456198116), align=None)
    extrude(amount=BOSS_EXTRUDE4_DEPTH)

    # Sketch37 → Cut-Extrude34 (cut)
    with BuildSketch(Plane(origin=(0, 25.535816818, 0), x_dir=(-1, 0, 0), z_dir=(0, -1, 0))):
        with Locations((12.631724286, 2.043801884)):
            Rectangle(SKETCH37_W, SKETCH37_H)
    extrude(amount=-CUT_EXTRUDE34_DEPTH, mode=Mode.SUBTRACT)

    # Sketch38 → Cut-Extrude36 (cut)
    with BuildSketch(Plane(origin=(0, 14.417739075, 0), x_dir=(-1, 0, 0), z_dir=(0, -1, 0))):
        with Locations((22.696550514, 2.043801884)):
            Rectangle(SKETCH38_W, SKETCH38_H)
    extrude(amount=-CUT_EXTRUDE36_DEPTH, mode=Mode.SUBTRACT)

    # Sketch40 → Boss-Extrude5 (add)
    with BuildSketch(Plane.XY.offset(-25.543801884)):
        with Locations((-26.321550514, 33.976777947)):
            Rectangle(SKETCH40_W, SKETCH40_H)
    extrude(amount=BOSS_EXTRUDE5_DEPTH)

    # Sketch41 → Boss-Extrude6 (add)
    with BuildSketch(Plane(origin=(-21.946550514, 0, 0), x_dir=(0, 0, -1), z_dir=(1, 0, 0))):
        with Locations((2.043801884, 33.976777947)):
            Rectangle(SKETCH41_W, SKETCH41_H)
    extrude(amount=BOSS_EXTRUDE6_DEPTH)

    # Sketch42 → Boss-Extrude7 (add)
    with BuildSketch(Plane.XY.offset(23.456198116)):
        with Locations((-38.013000899, 34.035816818)):
            Rectangle(SKETCH42_W, SKETCH42_H)
    extrude(amount=BOSS_EXTRUDE7_DEPTH)

    # Sketch43 → Boss-Extrude8 (add)
    with BuildSketch(Plane(origin=(0, 0, -27.543801884), x_dir=(-1, 0, 0), z_dir=(0, 0, -1))):
        with Locations((38.013000899, 33.976777947)):
            Rectangle(SKETCH43_W, SKETCH43_H)
    extrude(amount=BOSS_EXTRUDE8_DEPTH)


solid = part.part
